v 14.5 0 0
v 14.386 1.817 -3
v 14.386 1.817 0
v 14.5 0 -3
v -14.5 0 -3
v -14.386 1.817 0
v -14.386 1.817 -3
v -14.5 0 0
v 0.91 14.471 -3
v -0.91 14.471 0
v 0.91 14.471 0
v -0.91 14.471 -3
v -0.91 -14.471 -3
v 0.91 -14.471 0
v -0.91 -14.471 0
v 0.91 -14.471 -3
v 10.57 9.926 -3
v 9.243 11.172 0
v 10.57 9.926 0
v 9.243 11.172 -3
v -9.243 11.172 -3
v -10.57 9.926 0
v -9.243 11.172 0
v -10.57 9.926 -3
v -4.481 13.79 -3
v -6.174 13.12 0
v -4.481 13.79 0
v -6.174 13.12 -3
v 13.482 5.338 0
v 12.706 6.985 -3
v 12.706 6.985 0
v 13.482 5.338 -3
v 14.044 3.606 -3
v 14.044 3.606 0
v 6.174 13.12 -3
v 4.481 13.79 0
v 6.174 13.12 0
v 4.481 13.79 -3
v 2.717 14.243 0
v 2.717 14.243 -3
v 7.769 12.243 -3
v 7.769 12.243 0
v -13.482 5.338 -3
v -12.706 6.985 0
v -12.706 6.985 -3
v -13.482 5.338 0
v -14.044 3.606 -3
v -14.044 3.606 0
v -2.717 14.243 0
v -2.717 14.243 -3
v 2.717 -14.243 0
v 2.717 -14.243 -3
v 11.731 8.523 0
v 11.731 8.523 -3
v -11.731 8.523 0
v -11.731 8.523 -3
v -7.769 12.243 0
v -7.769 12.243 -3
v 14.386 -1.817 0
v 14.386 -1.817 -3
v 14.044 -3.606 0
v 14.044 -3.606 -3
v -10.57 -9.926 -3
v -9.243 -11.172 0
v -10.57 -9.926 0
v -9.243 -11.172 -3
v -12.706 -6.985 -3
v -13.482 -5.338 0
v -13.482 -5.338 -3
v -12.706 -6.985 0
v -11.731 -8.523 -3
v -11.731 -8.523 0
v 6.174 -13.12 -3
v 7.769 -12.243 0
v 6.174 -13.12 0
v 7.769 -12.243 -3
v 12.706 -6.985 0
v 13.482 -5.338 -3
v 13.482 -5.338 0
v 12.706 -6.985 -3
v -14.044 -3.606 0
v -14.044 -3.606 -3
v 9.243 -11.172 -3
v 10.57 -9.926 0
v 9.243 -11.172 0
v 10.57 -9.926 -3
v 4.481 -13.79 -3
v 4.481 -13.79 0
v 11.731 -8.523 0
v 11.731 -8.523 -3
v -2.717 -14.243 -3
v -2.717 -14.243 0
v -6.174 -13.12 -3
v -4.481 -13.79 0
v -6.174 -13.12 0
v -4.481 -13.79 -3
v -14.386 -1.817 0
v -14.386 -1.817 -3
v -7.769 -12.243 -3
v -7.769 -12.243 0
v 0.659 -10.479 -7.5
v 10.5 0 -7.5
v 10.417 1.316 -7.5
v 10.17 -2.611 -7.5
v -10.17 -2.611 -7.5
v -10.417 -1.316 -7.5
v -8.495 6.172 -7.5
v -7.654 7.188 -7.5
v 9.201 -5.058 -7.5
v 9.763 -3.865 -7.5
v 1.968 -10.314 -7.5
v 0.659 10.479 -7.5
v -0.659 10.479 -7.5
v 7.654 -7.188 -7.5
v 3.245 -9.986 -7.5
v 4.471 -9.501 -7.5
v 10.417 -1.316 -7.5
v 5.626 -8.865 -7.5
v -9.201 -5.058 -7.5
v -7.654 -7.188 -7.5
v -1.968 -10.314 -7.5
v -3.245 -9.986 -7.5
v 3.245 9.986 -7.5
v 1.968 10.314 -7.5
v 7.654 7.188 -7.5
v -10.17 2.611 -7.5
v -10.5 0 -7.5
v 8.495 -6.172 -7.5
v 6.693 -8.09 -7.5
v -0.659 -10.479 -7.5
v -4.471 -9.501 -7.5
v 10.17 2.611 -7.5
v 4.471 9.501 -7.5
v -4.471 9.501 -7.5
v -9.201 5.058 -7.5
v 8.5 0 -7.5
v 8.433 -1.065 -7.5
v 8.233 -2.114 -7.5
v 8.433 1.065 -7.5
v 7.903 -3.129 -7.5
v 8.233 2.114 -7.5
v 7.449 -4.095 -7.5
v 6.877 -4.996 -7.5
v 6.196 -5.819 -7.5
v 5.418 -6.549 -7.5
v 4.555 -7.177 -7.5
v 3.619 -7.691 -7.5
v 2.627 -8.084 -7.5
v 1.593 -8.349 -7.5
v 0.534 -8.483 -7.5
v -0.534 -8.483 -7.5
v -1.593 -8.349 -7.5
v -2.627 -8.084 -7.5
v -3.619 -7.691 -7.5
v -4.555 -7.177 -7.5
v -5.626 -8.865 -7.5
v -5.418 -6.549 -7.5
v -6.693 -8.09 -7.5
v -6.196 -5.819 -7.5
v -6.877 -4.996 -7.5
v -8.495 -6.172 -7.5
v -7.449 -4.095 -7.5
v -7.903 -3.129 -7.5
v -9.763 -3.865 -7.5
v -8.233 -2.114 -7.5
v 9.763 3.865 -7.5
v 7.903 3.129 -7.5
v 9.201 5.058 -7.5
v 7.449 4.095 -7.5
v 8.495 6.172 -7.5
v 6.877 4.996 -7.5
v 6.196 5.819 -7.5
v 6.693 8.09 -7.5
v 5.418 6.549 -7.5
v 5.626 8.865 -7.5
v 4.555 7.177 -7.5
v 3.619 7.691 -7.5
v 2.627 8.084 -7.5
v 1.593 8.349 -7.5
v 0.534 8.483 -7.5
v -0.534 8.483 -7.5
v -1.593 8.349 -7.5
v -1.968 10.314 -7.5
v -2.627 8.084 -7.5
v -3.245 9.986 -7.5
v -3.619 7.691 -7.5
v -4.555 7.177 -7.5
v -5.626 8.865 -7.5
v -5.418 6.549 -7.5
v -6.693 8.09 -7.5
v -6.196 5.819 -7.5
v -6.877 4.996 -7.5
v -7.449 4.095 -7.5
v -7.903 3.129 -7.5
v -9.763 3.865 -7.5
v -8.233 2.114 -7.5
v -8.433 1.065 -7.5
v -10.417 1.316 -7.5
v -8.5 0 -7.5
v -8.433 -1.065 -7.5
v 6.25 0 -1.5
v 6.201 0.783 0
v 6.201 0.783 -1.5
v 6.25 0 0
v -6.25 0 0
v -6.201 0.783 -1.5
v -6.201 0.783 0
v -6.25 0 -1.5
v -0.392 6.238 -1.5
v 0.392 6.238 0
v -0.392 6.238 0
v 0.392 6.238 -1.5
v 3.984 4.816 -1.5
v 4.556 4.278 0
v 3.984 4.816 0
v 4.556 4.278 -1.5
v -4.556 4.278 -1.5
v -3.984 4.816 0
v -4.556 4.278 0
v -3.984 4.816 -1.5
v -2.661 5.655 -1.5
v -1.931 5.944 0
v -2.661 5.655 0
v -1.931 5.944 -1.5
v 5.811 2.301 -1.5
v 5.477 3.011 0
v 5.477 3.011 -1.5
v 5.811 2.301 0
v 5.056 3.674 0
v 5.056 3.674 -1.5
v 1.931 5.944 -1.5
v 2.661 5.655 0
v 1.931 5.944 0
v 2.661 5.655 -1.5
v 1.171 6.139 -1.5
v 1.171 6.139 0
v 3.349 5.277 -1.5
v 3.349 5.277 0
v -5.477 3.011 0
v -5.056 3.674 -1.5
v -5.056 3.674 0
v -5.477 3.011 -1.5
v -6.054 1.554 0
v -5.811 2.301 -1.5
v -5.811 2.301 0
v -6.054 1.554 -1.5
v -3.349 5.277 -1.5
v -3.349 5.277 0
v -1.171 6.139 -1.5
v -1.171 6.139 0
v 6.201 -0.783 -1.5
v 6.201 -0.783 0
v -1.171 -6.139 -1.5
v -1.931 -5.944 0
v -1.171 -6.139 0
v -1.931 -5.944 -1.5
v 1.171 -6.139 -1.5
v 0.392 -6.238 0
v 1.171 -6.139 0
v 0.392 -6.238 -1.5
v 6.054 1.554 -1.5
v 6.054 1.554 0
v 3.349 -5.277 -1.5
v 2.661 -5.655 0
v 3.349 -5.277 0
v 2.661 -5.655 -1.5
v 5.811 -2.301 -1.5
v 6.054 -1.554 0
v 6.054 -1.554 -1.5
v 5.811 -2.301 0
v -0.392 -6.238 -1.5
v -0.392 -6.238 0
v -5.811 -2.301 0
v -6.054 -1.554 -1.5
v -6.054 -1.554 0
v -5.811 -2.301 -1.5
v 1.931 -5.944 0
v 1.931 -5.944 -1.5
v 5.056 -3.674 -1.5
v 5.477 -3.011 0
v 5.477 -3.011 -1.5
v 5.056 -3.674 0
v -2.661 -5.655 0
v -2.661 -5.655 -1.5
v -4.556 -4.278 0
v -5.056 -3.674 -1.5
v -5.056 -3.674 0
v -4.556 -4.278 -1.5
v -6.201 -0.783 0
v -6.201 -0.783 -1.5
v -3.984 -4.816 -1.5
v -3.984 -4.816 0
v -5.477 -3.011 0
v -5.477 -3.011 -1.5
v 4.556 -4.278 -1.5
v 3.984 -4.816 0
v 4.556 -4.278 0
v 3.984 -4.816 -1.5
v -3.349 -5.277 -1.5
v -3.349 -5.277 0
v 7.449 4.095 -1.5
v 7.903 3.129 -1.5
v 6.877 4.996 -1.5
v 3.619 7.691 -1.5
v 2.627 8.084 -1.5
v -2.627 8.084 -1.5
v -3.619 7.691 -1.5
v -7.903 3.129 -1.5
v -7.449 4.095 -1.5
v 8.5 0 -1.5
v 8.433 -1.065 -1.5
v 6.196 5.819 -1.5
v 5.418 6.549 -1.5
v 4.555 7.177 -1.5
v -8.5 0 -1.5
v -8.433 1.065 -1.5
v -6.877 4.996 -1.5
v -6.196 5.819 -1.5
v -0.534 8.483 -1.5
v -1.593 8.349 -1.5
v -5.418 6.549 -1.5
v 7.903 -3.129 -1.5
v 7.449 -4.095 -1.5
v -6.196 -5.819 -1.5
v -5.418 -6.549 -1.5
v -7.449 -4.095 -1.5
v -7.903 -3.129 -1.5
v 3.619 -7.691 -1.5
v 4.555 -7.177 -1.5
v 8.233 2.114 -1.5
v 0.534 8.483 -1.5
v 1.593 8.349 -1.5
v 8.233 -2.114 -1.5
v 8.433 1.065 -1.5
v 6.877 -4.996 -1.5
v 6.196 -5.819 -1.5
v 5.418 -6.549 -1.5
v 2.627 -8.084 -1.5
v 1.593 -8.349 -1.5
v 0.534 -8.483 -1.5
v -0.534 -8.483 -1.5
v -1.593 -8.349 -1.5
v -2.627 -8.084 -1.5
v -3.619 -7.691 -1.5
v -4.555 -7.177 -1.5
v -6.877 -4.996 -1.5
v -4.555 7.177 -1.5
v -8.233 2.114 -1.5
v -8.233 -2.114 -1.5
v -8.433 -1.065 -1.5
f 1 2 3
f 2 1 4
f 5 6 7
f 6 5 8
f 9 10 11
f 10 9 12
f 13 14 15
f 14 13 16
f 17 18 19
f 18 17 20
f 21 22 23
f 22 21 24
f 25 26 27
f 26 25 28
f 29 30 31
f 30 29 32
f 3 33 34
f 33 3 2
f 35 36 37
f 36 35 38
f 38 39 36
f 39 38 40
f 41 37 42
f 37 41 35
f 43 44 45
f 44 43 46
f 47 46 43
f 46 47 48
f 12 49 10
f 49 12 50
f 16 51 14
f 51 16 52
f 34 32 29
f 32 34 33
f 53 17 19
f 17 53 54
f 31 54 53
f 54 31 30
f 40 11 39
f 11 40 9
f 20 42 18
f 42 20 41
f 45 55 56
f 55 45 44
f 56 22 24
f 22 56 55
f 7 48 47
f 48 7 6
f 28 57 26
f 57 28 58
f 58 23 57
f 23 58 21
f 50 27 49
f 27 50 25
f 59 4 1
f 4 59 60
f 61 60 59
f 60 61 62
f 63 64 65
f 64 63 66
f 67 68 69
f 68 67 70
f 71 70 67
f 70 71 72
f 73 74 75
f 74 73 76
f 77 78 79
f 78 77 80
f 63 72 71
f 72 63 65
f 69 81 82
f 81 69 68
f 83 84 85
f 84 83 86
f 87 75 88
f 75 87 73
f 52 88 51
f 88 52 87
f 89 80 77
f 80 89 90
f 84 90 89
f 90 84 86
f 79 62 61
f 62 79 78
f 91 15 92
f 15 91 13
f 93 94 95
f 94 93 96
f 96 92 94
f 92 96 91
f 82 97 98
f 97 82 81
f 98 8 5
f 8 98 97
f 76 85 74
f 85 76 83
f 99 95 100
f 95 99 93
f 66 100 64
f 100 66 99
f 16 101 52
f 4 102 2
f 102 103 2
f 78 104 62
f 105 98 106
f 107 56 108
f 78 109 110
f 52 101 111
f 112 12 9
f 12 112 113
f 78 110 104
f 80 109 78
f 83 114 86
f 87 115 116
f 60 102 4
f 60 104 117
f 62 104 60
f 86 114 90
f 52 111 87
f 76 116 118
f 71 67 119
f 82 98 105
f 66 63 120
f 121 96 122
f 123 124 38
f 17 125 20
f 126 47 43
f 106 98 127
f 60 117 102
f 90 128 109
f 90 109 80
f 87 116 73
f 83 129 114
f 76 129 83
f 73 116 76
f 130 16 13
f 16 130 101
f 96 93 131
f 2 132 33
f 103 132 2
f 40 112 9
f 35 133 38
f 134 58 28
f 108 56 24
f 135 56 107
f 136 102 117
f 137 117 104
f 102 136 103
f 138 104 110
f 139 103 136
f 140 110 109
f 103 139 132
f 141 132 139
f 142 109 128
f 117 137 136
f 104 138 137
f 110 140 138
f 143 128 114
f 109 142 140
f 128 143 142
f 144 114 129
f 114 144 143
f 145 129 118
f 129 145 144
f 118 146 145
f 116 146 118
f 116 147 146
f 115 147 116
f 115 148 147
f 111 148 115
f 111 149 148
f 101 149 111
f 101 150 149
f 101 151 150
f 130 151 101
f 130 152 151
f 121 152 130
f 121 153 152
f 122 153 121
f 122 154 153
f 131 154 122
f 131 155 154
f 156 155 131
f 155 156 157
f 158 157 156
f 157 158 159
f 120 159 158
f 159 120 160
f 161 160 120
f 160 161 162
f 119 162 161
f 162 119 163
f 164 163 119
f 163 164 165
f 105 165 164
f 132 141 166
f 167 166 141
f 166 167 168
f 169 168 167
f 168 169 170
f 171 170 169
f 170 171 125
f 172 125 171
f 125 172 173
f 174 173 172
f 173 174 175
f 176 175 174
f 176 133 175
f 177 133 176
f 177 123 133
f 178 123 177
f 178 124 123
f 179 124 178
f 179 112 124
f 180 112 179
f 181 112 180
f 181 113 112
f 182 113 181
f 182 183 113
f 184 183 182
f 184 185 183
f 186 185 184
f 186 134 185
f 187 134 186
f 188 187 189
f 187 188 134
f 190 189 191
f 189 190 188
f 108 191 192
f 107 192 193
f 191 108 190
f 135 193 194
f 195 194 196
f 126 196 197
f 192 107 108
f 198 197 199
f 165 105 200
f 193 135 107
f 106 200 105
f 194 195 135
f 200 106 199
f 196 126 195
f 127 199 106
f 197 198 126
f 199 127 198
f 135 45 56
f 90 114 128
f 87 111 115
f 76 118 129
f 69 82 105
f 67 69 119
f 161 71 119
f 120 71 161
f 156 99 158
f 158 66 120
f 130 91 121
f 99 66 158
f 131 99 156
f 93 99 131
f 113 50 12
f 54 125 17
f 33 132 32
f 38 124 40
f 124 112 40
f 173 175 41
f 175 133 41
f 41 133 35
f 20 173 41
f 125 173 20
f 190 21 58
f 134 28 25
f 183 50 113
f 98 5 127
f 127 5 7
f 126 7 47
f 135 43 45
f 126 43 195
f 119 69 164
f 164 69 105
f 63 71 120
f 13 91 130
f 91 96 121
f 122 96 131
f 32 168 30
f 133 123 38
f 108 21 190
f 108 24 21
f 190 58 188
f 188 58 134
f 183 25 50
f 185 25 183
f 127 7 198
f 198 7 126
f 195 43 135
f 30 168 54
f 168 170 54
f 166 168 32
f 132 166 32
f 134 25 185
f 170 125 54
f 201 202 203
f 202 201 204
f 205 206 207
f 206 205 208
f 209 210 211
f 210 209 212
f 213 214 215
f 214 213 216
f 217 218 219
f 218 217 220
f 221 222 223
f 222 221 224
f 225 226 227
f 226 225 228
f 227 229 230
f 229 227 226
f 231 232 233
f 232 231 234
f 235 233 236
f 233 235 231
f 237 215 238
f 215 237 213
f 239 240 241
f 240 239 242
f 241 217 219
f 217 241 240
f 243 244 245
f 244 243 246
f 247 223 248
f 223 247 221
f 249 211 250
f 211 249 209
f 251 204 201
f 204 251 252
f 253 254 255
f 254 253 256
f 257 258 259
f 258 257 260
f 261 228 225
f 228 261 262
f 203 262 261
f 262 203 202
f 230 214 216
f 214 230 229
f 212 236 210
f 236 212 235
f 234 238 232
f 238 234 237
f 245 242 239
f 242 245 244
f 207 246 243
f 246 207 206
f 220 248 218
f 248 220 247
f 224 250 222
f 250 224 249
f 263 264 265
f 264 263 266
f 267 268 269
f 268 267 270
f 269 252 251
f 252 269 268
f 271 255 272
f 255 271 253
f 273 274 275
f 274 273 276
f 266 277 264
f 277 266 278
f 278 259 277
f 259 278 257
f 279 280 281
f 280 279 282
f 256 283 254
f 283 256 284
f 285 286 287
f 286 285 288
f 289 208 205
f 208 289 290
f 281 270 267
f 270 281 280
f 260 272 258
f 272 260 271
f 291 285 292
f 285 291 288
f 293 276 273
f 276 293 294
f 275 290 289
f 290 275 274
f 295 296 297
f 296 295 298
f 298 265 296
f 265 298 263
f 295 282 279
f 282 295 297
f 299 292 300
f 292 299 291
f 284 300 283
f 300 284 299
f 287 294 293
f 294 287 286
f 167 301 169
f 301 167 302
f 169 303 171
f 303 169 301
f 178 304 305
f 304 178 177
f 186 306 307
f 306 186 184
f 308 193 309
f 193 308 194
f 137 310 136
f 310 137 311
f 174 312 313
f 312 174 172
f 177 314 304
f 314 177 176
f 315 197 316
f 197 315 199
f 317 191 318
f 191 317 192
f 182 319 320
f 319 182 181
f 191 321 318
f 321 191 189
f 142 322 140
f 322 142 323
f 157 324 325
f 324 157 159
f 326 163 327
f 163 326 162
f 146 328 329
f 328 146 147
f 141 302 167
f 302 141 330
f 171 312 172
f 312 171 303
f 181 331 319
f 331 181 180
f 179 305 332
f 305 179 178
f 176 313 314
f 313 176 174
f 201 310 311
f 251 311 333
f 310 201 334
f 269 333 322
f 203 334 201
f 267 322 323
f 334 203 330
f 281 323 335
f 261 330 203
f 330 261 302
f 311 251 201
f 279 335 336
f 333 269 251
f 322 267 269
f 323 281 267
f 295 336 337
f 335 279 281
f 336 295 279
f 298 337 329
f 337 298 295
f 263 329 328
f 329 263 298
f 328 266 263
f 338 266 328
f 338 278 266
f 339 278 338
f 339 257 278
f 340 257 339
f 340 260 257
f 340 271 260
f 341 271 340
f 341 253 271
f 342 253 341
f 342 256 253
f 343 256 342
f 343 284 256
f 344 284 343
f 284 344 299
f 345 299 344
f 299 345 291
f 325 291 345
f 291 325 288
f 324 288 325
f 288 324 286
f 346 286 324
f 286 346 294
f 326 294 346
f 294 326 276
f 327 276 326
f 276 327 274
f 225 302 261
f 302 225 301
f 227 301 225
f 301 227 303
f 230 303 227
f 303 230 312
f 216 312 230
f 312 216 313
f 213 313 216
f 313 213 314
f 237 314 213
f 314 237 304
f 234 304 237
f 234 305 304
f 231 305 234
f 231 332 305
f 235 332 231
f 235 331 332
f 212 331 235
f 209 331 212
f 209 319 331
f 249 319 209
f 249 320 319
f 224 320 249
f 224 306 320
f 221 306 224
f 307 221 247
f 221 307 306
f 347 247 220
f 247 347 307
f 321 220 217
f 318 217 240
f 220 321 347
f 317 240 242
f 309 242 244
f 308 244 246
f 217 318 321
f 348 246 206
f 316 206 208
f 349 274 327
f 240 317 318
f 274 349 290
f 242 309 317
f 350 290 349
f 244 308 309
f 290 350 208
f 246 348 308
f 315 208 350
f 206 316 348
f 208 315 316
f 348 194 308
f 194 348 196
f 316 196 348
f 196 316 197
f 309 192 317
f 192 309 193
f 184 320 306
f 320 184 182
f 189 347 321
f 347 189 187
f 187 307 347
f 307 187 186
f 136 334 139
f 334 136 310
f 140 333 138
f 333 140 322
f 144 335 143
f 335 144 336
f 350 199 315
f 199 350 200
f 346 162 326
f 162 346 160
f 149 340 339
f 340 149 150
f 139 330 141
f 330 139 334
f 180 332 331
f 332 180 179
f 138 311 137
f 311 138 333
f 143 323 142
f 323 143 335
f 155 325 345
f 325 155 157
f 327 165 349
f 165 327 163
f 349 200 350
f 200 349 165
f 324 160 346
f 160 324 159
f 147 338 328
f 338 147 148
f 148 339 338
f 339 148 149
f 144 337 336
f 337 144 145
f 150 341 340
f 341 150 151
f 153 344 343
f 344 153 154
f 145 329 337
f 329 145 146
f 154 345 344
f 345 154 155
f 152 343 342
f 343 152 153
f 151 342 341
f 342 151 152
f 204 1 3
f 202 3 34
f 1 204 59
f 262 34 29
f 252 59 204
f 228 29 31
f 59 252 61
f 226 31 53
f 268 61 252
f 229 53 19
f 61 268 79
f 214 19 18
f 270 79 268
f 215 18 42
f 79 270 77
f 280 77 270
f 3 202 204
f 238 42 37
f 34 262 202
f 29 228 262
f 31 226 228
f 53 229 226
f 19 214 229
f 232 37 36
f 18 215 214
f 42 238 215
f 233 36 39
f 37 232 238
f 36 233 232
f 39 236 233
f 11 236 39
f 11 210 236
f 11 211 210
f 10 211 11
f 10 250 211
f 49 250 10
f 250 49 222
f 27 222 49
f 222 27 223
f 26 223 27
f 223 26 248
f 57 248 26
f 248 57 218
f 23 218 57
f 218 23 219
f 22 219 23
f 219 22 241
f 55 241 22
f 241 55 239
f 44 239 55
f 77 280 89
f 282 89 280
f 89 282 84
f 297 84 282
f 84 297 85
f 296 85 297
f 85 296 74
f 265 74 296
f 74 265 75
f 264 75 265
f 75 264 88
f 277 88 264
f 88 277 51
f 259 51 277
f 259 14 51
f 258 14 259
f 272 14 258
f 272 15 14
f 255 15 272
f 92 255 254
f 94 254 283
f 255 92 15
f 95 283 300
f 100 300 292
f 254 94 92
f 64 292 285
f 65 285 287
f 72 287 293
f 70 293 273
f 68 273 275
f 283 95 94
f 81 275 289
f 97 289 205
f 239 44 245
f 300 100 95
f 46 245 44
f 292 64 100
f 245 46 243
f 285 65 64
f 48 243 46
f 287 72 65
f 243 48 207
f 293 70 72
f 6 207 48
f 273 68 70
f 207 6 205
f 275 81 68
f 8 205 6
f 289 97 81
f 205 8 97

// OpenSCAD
$fn = 50;


difference() {
	union() {
		translate(v = [0, 0, -3.0000000000]) {
			cylinder(h = 6, r = 14.5000000000);
		}
		translate(v = [0, 0, 3.0000000000]) {
			cylinder(h = 4.5000000000, r1 = 14.5000000000, r2 = 10.5000000000);
		}
		translate(v = [0, 0, -7.5000000000]) {
			cylinder(h = 4.5000000000, r1 = 10.5000000000, r2 = 14.5000000000);
		}
	}
	union() {
		translate(v = [0, 0, -50.0000000000]) {
			cylinder(h = 100, r = 5);
		}
		translate(v = [0, 0, 4.5000000000]) {
			translate(v = [0, 0, -3.0000000000]) {
				union() {
					difference() {
						cylinder(h = 6, r = 8.5000000000);
						cylinder(h = 6, r = 3.0000000000);
					}
					difference() {
						translate(v = [0, 0, -50]) {
							cylinder(h = 100, r = 6.2500000000);
						}
					}
				}
			}
		}
		translate(v = [0, 0, -4.5000000000]) {
			translate(v = [0, 0, -3.0000000000]) {
				union() {
					difference() {
						cylinder(h = 6, r = 8.5000000000);
						cylinder(h = 6, r = 3.0000000000);
					}
					difference() {
						translate(v = [0, 0, -50]) {
							cylinder(h = 100, r = 6.2500000000);
						}
					}
				}
			}
		}
		translate(v = [-250.0000000000, -250.0000000000, 0]) {
			cube(size = [500, 500, 500]);
		}
		translate(v = [-250.0000000000, -250.0000000000, 0]) {
			cube(size = [500, 500, 500]);
		}
		translate(v = [-250.0000000000, -250.0000000000, 0]) {
			cube(size = [500, 500, 500]);
		}
	}
}
